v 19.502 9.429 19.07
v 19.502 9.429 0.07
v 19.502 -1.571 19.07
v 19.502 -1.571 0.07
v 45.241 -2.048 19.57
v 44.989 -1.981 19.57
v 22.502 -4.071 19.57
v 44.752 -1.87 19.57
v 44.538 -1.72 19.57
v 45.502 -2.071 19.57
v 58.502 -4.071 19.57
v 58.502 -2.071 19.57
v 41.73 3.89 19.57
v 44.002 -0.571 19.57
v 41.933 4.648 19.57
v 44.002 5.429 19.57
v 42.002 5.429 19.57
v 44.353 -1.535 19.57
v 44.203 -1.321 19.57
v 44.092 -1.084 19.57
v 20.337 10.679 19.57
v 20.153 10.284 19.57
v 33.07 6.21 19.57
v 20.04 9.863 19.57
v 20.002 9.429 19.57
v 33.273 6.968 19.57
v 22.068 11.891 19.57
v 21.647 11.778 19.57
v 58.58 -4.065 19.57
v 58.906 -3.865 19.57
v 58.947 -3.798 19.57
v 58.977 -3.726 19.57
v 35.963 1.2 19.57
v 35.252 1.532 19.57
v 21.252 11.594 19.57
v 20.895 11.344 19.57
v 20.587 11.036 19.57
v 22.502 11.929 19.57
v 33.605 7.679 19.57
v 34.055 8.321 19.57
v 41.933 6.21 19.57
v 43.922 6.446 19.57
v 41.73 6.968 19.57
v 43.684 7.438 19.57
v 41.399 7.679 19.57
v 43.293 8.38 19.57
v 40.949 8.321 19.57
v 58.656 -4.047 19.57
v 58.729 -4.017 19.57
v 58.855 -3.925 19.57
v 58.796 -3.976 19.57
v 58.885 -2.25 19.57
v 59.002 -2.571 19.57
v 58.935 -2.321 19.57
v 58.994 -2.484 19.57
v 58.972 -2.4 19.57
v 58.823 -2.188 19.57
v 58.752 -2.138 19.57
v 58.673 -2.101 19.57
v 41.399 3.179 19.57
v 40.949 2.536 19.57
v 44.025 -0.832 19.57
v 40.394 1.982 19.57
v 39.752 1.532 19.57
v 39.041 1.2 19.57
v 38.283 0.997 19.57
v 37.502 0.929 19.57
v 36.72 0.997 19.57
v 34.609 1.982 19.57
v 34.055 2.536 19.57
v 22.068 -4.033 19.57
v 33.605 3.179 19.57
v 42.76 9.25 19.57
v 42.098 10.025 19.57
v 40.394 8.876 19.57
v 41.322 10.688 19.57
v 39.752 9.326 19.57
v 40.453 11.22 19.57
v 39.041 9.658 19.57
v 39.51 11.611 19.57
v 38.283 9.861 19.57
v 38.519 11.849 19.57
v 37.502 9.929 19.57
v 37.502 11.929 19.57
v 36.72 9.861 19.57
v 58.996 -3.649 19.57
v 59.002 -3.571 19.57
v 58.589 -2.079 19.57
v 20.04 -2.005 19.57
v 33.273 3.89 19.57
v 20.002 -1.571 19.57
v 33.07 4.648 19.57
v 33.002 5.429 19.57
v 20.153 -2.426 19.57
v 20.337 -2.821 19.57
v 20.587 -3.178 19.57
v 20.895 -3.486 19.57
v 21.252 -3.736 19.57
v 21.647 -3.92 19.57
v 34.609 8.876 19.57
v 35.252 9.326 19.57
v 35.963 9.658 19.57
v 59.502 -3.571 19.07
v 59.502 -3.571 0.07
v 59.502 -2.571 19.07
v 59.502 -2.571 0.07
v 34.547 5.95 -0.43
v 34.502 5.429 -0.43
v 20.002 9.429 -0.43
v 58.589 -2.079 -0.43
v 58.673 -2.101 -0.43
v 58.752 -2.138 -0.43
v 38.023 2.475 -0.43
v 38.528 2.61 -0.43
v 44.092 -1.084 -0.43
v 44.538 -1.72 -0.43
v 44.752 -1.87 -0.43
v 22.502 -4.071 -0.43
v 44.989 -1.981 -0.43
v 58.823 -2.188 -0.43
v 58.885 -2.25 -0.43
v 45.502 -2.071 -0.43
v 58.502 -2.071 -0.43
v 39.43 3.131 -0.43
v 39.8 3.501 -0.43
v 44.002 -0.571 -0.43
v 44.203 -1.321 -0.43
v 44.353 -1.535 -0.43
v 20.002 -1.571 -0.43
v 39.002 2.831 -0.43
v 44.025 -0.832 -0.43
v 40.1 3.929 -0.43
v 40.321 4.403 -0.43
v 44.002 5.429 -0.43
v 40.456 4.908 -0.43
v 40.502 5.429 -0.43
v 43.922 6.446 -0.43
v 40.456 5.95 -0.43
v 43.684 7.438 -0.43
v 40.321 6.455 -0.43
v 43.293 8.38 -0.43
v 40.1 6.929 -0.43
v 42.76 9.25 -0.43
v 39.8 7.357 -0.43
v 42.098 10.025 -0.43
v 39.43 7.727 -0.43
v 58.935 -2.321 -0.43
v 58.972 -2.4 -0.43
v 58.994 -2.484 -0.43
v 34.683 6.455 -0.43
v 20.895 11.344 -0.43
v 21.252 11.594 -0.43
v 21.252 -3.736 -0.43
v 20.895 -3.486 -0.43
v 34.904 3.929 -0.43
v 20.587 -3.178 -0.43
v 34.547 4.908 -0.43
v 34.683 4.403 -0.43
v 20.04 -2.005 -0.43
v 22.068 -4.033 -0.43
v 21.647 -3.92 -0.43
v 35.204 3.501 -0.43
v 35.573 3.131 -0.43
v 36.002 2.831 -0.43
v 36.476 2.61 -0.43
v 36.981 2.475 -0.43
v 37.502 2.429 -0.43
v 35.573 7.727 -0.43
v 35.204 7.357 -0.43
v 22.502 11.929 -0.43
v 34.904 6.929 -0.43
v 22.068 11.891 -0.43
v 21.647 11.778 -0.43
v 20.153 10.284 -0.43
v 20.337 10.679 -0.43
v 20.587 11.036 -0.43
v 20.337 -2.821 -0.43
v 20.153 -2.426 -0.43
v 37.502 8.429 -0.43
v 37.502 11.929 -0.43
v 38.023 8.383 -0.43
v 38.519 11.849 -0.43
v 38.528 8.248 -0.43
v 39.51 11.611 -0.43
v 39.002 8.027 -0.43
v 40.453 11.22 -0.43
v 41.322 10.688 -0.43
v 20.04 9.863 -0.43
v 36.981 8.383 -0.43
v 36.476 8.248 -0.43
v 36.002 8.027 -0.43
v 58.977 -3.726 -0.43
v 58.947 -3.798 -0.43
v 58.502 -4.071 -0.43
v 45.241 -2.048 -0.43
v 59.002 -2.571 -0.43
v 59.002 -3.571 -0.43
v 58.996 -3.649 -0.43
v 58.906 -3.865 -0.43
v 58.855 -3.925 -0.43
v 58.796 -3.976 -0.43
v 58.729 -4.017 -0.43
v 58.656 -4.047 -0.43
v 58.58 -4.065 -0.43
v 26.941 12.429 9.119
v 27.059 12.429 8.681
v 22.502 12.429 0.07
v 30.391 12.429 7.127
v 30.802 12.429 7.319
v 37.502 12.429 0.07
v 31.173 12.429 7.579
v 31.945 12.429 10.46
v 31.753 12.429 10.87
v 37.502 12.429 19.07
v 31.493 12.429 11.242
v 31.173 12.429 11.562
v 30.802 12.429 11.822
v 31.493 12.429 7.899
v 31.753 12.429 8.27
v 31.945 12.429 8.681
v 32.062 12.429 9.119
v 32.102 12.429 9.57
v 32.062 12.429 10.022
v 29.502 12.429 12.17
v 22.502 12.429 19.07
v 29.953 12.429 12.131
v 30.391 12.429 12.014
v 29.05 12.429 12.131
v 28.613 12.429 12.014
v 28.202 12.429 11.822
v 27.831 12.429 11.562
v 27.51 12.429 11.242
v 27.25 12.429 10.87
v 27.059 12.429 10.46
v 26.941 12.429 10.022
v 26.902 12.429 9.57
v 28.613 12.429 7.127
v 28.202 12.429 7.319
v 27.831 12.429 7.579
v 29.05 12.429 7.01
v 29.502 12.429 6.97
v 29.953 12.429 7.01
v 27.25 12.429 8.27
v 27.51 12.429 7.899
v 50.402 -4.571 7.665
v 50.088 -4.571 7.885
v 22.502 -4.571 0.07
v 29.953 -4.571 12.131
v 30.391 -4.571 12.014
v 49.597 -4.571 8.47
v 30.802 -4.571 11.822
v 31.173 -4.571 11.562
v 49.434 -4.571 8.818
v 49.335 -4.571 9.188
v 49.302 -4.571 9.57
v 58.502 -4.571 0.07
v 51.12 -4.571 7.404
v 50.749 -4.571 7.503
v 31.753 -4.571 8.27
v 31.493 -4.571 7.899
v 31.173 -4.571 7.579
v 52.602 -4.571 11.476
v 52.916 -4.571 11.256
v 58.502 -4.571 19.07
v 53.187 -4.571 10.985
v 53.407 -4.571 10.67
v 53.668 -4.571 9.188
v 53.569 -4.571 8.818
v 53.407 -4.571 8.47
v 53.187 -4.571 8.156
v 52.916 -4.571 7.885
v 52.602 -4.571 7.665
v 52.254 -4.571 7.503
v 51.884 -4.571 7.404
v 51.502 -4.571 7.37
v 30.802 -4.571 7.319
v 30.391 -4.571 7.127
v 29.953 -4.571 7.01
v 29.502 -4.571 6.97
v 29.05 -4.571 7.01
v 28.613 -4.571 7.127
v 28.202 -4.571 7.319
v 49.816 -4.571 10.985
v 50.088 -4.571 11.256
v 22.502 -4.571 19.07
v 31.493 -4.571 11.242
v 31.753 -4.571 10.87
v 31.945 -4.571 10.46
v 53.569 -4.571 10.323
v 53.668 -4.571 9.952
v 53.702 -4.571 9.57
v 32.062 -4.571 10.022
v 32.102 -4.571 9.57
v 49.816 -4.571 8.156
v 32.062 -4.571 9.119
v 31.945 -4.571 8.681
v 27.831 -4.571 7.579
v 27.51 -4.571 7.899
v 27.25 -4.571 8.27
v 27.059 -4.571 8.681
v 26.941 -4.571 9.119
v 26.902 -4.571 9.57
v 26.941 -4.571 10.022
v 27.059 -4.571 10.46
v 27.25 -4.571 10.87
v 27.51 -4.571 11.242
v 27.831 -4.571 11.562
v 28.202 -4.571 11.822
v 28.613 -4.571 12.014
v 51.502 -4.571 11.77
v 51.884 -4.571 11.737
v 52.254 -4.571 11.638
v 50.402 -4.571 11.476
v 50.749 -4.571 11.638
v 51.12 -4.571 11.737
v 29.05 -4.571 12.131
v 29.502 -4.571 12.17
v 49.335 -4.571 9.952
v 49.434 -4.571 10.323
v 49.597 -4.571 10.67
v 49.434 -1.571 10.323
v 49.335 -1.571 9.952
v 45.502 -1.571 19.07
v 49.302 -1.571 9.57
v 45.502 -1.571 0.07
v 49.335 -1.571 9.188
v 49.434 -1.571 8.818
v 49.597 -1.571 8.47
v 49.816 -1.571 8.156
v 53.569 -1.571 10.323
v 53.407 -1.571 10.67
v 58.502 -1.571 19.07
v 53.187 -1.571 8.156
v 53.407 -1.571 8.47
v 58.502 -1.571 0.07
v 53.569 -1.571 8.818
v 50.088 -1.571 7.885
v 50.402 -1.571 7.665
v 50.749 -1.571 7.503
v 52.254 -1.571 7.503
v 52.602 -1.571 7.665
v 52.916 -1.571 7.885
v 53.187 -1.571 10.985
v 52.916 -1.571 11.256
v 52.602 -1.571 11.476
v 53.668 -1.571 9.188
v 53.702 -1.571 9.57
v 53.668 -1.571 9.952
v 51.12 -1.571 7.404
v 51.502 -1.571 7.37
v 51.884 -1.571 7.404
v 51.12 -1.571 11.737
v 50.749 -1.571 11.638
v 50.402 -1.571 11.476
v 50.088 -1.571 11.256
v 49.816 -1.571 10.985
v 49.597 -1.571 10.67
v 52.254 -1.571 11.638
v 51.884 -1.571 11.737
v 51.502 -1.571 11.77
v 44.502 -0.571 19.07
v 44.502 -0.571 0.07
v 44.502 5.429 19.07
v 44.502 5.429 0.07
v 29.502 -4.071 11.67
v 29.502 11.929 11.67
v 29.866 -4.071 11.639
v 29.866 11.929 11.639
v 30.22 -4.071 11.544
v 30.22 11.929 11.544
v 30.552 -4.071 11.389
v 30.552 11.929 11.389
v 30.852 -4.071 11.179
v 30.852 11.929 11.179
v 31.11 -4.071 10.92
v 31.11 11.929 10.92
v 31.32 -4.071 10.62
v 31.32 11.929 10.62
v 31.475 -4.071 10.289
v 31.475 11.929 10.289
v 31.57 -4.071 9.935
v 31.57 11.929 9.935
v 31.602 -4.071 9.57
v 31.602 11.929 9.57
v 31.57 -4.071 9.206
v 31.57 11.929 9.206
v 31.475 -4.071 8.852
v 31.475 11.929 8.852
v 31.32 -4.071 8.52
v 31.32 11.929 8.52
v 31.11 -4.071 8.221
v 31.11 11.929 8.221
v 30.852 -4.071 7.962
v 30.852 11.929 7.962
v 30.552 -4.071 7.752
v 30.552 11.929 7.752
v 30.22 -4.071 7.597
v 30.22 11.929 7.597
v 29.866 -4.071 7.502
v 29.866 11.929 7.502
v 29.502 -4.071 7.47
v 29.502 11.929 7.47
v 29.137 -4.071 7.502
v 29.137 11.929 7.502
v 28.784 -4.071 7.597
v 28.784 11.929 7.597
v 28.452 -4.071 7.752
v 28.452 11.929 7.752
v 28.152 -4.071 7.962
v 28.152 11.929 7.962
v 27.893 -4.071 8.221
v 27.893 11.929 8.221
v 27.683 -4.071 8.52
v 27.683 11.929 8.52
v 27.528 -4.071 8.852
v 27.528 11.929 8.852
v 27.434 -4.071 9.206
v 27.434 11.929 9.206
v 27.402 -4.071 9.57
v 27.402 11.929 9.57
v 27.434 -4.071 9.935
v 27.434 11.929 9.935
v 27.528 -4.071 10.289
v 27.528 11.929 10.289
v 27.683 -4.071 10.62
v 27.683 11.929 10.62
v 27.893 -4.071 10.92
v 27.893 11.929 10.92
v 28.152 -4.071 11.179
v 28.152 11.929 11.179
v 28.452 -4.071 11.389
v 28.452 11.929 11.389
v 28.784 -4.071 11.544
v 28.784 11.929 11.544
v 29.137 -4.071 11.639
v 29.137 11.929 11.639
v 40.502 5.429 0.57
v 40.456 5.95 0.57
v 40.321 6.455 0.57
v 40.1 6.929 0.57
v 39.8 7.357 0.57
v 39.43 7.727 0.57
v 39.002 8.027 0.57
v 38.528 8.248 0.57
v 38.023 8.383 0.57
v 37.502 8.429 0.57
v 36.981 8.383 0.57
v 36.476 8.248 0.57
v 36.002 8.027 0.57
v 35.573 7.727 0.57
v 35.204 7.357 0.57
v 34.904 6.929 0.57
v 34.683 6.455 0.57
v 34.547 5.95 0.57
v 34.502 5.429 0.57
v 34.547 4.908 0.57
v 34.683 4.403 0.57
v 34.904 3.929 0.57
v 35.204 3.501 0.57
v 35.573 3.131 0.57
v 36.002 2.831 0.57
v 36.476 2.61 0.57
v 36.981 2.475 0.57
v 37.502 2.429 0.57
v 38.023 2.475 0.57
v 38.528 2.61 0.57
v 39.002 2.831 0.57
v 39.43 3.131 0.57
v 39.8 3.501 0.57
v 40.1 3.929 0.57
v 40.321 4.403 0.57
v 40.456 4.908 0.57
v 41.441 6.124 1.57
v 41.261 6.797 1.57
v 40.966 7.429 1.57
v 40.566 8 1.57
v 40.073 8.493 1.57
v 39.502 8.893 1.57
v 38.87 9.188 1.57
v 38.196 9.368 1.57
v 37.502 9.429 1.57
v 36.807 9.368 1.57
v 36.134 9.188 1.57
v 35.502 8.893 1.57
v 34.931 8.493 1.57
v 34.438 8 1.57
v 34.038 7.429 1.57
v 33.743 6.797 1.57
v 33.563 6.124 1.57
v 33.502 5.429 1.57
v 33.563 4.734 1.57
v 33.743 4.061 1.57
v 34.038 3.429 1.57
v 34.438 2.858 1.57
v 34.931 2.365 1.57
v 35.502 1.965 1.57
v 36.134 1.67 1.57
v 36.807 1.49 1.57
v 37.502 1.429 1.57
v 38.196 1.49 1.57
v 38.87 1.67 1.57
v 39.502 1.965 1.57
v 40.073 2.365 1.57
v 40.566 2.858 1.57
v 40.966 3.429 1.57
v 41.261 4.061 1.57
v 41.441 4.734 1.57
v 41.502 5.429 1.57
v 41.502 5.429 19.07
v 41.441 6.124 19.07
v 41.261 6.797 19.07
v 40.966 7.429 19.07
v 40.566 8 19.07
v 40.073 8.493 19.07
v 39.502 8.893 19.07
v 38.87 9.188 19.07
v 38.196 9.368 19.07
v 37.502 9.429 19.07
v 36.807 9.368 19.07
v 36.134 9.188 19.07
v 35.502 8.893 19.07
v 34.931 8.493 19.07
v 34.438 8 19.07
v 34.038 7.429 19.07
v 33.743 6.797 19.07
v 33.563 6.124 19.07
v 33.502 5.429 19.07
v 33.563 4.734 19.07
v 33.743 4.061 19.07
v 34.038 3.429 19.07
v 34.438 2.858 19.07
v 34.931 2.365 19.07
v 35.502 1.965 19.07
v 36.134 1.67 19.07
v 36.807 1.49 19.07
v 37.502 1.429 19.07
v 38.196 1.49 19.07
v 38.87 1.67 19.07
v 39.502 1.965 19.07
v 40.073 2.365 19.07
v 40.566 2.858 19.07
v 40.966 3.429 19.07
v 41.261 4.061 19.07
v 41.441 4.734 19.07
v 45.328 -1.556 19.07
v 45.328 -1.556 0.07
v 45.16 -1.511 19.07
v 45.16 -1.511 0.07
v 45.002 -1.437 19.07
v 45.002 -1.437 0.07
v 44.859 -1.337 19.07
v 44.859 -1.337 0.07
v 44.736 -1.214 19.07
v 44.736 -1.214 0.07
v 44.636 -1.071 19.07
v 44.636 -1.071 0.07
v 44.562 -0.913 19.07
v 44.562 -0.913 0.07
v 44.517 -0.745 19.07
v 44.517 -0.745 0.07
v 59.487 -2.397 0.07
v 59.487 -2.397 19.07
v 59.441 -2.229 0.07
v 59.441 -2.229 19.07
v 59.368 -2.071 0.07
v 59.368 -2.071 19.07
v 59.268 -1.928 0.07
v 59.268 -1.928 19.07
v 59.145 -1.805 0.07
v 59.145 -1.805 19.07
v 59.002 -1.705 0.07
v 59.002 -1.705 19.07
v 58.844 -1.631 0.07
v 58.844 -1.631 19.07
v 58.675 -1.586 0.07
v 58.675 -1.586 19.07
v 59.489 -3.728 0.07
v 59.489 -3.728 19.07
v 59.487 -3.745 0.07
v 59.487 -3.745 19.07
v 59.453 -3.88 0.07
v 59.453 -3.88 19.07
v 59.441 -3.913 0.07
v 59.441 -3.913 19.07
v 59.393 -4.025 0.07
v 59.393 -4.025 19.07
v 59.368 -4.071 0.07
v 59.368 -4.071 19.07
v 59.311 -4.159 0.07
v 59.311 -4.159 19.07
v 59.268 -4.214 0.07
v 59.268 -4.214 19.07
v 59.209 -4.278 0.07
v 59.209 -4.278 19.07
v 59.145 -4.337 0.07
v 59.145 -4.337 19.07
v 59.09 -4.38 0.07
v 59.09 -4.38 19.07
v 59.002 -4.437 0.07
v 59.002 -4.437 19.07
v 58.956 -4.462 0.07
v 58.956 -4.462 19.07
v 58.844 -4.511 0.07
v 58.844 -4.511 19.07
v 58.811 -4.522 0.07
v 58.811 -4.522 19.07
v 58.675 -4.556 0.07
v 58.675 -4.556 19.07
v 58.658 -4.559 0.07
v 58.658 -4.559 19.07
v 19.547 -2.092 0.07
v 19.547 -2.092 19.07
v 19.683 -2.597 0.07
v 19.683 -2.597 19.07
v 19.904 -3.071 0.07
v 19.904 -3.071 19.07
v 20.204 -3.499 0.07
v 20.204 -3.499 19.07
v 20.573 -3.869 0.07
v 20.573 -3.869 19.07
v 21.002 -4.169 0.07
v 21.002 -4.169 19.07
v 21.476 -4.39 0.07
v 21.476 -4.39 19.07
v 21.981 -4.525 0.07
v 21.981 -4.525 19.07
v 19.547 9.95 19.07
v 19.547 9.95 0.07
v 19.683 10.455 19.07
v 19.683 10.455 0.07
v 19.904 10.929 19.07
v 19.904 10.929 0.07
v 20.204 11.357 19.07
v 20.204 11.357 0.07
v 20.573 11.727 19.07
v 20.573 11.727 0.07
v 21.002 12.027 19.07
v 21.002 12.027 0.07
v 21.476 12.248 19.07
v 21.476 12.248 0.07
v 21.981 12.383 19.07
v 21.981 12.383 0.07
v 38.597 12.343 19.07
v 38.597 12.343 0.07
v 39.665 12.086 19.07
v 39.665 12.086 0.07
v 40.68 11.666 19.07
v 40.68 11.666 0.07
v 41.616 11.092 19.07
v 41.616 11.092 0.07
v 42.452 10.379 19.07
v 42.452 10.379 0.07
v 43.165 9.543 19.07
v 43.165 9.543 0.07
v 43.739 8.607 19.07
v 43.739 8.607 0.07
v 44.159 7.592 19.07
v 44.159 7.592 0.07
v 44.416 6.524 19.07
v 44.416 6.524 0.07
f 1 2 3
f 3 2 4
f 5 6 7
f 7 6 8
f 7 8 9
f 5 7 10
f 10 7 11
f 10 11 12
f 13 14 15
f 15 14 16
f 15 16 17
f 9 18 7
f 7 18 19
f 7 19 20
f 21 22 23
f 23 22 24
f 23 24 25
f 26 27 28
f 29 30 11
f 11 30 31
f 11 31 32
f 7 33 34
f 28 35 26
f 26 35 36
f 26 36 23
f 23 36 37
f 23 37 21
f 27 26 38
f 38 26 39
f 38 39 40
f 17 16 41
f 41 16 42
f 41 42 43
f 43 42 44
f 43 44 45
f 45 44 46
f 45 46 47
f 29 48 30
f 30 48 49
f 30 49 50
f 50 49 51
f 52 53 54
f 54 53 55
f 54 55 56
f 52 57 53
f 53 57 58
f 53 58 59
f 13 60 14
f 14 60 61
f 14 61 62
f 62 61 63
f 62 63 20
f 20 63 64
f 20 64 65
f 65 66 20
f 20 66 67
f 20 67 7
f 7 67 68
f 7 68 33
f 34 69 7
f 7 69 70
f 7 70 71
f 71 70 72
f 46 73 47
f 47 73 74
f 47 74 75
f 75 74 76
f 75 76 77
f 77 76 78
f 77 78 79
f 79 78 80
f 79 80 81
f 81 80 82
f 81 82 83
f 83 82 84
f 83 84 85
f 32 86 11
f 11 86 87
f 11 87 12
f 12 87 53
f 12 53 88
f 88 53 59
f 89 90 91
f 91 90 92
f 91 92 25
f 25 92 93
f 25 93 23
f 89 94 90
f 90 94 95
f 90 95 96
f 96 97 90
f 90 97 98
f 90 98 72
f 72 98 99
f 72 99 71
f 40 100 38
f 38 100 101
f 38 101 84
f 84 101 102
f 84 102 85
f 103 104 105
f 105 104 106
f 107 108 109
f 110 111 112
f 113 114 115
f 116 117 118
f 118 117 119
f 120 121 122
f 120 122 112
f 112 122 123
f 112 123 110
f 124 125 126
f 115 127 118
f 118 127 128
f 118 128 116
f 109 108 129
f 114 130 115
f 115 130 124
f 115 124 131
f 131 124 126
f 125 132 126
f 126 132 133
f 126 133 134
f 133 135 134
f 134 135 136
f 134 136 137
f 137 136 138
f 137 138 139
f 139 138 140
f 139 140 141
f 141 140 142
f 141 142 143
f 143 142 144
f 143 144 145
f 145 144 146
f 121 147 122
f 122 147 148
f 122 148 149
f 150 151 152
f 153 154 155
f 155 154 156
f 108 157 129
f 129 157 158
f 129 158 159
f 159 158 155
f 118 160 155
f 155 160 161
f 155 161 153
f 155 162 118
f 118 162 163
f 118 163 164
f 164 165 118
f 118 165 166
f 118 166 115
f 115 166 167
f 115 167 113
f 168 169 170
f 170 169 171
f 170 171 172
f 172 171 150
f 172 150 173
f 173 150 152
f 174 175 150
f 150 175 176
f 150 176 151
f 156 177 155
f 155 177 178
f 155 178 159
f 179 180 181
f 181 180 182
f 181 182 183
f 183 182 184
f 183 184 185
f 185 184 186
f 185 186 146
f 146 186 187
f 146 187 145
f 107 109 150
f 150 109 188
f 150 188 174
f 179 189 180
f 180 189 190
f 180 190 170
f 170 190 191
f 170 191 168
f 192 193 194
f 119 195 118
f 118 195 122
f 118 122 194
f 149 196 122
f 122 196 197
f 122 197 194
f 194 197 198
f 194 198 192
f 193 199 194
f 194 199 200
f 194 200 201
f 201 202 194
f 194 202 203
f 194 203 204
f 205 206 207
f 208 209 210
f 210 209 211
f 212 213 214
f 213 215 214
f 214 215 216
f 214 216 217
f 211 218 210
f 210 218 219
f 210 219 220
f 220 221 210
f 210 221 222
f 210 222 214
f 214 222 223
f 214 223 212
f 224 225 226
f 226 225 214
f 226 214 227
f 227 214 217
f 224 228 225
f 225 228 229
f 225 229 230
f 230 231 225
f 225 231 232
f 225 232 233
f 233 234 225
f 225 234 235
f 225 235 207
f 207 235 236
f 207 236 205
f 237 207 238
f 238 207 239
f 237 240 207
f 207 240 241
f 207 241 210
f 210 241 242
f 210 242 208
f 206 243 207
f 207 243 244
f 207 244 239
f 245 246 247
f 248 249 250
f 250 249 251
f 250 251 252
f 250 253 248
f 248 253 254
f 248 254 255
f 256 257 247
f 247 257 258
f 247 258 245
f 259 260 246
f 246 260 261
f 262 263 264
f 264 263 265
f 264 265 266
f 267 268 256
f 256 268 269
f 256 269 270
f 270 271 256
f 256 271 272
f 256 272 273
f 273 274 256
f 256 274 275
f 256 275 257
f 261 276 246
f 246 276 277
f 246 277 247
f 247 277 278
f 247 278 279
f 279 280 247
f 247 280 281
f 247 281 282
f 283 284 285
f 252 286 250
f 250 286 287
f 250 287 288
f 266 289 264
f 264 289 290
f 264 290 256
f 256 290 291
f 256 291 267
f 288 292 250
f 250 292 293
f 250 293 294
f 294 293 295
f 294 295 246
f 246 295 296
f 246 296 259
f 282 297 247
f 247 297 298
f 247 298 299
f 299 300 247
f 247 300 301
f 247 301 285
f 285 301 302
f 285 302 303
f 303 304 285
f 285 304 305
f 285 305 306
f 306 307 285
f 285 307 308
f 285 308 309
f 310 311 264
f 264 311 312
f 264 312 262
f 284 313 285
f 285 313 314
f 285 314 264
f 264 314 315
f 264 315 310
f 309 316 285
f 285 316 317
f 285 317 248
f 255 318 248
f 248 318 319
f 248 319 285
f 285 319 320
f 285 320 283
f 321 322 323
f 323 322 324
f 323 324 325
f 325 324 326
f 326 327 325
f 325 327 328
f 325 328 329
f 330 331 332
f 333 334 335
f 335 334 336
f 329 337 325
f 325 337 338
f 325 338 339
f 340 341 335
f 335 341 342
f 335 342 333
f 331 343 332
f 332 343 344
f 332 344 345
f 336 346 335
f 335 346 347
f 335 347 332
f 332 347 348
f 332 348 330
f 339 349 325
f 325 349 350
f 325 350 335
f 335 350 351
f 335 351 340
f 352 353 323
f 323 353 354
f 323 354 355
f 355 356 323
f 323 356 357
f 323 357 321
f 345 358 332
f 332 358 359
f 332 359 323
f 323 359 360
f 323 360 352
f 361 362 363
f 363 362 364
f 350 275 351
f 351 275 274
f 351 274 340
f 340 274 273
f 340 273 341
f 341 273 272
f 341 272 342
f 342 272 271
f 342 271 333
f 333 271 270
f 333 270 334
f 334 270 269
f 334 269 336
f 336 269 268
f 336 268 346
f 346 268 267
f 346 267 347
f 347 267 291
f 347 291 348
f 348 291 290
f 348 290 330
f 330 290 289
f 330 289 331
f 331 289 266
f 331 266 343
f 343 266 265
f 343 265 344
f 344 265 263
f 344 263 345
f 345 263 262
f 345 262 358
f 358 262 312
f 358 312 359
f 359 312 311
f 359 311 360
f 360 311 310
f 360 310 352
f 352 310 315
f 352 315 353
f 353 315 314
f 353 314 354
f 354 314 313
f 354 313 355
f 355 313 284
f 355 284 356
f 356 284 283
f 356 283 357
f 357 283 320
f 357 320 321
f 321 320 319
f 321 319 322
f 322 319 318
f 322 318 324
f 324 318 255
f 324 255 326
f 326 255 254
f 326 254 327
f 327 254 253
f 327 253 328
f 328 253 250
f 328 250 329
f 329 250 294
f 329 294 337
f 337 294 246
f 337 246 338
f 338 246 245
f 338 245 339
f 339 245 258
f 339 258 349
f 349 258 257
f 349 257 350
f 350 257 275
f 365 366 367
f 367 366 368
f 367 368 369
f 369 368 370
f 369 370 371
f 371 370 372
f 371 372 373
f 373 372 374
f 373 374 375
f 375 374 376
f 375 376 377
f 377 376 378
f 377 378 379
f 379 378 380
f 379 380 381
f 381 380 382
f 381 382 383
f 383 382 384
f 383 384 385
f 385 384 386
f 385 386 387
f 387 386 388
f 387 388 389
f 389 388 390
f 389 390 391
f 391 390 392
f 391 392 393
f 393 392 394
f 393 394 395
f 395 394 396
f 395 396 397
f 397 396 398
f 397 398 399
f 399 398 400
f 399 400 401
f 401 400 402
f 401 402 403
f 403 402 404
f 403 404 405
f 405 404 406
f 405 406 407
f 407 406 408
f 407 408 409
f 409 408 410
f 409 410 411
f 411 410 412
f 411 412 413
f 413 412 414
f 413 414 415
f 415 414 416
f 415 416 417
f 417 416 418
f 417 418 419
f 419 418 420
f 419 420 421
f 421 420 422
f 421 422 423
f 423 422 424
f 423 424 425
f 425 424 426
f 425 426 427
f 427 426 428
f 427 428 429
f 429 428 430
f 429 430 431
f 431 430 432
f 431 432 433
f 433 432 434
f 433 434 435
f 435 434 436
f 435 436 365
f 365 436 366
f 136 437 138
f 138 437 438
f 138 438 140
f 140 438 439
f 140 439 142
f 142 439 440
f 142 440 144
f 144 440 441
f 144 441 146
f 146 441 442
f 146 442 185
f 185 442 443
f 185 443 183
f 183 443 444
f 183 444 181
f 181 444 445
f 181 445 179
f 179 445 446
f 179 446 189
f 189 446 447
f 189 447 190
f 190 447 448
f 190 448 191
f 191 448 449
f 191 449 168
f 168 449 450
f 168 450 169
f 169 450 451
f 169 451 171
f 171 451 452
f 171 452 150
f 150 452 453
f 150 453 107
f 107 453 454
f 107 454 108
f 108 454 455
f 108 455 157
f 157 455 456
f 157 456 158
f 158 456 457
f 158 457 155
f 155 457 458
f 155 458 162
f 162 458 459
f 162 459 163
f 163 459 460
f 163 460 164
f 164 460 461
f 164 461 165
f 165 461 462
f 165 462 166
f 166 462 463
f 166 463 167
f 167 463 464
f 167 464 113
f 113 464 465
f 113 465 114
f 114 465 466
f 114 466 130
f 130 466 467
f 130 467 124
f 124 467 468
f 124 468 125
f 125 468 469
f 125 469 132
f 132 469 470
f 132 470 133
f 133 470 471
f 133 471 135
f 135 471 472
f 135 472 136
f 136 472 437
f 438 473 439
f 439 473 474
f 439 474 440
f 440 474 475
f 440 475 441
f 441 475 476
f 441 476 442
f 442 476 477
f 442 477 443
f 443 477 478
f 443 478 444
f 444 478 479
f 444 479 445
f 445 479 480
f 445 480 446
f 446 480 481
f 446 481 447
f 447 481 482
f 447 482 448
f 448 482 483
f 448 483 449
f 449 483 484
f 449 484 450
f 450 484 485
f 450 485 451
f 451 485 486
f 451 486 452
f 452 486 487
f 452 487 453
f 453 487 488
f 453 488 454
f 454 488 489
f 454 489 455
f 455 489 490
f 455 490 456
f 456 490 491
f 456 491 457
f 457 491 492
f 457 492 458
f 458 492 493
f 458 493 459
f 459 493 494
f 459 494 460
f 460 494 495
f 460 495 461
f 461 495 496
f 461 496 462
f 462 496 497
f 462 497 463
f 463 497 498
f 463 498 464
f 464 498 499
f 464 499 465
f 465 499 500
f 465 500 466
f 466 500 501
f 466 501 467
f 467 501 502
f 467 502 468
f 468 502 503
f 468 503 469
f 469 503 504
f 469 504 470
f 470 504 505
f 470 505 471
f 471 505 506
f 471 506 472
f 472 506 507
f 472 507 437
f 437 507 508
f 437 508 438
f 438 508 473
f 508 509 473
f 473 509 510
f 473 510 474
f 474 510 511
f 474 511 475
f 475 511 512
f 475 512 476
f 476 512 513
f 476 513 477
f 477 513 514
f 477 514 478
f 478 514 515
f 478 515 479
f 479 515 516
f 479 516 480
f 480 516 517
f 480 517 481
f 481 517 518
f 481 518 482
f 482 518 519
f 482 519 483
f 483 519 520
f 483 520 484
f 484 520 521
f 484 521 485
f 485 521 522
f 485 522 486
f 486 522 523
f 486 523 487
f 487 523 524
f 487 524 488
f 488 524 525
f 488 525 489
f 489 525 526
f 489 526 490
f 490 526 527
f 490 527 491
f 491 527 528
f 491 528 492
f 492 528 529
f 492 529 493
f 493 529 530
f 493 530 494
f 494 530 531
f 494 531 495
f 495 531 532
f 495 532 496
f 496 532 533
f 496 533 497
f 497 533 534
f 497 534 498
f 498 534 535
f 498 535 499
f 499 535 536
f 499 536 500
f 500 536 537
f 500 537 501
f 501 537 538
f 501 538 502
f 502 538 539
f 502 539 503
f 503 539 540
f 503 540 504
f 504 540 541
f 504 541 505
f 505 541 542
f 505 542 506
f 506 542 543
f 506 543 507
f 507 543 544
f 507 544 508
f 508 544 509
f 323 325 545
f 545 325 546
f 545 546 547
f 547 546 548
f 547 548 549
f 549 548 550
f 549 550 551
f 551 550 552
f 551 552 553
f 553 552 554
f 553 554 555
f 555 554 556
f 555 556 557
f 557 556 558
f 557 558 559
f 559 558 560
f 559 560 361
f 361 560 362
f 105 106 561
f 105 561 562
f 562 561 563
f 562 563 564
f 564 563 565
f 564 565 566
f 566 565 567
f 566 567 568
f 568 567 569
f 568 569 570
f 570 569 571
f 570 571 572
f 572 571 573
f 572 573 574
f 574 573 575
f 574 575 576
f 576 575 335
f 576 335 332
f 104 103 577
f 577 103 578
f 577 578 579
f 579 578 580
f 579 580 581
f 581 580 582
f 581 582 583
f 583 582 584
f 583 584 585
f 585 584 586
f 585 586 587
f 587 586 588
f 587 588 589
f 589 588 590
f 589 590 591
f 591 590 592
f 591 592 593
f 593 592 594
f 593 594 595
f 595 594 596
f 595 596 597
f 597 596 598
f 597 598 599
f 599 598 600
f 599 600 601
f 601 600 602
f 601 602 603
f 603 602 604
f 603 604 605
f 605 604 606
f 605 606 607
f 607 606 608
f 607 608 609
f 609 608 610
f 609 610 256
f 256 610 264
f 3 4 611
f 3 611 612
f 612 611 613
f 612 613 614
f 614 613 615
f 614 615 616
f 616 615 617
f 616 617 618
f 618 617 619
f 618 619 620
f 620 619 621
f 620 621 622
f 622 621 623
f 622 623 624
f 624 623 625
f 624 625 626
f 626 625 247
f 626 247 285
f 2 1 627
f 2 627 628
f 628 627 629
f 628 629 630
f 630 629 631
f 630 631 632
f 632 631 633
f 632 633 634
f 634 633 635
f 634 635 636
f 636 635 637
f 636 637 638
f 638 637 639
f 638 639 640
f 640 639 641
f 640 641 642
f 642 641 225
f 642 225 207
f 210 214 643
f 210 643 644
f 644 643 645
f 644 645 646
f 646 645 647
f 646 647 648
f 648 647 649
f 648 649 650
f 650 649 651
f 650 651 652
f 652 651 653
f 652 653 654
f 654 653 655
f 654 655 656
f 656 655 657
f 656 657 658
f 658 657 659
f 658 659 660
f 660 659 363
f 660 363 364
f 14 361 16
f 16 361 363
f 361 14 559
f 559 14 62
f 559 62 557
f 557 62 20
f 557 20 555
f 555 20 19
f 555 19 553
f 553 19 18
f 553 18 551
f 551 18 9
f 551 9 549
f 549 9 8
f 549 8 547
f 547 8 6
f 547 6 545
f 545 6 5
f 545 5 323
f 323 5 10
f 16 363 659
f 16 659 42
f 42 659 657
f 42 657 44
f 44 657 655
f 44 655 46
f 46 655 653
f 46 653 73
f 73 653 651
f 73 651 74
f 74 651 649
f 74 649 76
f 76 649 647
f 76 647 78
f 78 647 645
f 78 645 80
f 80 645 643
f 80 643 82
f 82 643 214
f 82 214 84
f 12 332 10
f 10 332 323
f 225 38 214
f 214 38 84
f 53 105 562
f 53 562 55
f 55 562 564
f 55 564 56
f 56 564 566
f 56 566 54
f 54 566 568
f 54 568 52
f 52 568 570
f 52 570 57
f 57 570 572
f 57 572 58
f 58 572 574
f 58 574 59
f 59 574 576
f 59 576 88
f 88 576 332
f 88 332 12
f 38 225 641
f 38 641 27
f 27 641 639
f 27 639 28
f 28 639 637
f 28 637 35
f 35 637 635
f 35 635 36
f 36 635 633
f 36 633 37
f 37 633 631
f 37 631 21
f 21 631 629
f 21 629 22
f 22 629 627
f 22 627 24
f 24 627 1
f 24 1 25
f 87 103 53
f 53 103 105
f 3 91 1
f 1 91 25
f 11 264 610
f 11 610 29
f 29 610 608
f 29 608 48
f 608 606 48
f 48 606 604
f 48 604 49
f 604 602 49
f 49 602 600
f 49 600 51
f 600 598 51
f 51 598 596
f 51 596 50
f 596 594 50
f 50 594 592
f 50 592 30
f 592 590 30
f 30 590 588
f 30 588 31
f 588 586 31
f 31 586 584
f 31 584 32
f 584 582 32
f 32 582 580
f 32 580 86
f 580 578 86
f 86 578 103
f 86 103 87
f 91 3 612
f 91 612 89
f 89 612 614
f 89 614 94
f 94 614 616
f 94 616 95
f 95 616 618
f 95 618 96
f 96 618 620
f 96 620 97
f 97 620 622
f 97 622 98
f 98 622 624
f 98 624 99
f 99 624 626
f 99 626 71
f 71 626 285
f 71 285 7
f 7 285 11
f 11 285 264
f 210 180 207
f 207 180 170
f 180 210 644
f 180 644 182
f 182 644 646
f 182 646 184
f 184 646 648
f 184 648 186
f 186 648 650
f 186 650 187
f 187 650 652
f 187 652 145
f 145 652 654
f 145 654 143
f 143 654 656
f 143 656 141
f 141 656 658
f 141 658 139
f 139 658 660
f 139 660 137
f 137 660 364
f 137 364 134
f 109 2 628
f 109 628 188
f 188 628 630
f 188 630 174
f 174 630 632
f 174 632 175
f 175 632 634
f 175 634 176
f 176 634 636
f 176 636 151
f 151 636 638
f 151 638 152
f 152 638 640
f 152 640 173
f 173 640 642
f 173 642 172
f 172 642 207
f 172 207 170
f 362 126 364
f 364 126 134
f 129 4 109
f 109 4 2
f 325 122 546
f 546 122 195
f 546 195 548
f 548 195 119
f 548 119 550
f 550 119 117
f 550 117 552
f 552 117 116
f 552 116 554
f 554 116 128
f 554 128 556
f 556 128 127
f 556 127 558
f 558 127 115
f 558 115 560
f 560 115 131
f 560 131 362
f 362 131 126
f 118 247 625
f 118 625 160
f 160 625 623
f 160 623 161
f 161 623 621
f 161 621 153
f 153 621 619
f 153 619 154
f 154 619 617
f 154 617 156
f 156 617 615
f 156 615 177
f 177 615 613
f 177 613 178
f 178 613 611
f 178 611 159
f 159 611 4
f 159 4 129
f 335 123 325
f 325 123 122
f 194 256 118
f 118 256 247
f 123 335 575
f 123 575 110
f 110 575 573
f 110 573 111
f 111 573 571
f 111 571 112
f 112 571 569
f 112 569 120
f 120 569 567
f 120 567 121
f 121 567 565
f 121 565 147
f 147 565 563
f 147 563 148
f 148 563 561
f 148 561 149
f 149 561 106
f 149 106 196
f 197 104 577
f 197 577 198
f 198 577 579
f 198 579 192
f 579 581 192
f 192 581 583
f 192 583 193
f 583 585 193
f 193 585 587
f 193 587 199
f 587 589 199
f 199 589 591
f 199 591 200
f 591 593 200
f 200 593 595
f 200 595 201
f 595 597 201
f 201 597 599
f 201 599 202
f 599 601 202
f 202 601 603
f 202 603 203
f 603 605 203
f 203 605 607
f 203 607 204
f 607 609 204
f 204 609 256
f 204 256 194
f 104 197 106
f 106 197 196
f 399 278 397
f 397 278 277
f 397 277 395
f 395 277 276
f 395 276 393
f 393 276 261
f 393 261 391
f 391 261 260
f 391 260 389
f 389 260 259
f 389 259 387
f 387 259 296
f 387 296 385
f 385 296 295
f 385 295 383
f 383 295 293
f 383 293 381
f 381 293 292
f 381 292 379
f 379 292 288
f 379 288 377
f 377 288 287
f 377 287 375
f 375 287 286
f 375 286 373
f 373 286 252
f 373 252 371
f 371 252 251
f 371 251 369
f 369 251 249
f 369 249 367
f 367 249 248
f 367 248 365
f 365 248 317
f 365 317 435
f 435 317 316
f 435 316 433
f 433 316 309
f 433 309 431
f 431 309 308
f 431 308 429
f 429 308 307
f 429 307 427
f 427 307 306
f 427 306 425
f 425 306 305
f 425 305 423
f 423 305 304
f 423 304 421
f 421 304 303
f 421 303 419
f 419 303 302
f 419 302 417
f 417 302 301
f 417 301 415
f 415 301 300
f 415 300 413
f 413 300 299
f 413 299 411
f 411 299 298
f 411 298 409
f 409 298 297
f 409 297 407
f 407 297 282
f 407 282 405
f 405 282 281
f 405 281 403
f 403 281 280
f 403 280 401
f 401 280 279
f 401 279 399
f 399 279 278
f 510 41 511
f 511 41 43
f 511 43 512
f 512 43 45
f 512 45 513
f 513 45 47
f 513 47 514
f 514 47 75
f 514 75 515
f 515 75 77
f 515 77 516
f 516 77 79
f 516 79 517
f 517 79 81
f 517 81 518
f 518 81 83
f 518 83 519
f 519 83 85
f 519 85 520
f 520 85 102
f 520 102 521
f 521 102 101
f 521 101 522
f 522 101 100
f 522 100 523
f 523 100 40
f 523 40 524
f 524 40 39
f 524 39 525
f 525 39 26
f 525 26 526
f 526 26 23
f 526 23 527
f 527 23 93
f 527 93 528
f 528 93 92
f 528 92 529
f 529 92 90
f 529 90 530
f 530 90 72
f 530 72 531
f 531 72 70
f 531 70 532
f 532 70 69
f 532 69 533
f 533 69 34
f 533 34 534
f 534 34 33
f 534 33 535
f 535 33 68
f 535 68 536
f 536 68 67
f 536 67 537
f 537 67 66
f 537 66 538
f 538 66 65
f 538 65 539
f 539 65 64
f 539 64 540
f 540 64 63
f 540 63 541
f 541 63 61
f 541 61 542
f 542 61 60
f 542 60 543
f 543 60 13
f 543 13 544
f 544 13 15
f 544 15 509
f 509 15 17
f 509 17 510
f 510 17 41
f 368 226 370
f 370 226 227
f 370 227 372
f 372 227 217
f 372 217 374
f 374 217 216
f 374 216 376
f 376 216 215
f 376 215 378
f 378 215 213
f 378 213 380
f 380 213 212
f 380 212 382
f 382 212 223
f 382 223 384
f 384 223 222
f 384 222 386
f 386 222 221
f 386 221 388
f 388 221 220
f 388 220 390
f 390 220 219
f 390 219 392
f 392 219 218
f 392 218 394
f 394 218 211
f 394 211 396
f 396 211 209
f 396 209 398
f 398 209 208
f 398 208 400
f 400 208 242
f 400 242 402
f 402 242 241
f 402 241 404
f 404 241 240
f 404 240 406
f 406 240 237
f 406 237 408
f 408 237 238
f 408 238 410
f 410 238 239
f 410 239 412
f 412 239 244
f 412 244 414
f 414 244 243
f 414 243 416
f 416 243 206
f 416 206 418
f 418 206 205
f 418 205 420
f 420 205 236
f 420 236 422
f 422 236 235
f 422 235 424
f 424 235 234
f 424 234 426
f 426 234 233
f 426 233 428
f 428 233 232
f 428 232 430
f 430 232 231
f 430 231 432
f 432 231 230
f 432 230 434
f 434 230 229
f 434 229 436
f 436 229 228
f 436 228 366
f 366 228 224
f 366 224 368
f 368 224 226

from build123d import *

# Parameters (mm, degrees)
SKETCH1_W                      = 40
SKETCH1_H                      = 20
BOSS_EXTRUDE1_DEPTH            = 17
SKETCH2_W                      = 15
SKETCH2_H                      = 14
CUT_EXTRUDE1_DEPTH             = 21
F_4_4_4_4_DIAMETER_HOLE1_D     = 4.4
F_4_4_4_4_DIAMETER_HOLE1_DEPTH = 17
F_4_2_4_2_DIAMETER_HOLE1_D     = 4.2
F_4_2_4_2_DIAMETER_HOLE1_DEPTH = 17
FILLET1_R                      = 1
FILLET2_R                      = 3
FILLET3_R                      = 7
CHAMFER1_SIZE                  = 0.5


with BuildPart() as part:
    # Sketch1 → Boss-Extrude1 (new body)
    with BuildSketch(Plane.XZ.offset(4.571066784)):
        with Locations((39.501752658, 9.570440181)):
            Rectangle(SKETCH1_W, SKETCH1_H)
    extrude(amount=-BOSS_EXTRUDE1_DEPTH)

    # Sketch2 → Cut-Extrude1 (cut, through all)
    with BuildSketch(Plane.XY.offset(19.570440181)):
        with Locations((52.001752658, 5.428933216)):
            Rectangle(SKETCH2_W, SKETCH2_H)
    extrude(amount=-CUT_EXTRUDE1_DEPTH, mode=Mode.SUBTRACT)

    # Ø4.4 (4.4) Diameter Hole1
    with Locations(Plane(origin=(0, -4.571066784, 0), x_dir=(-1, 0, 0), z_dir=(0, -1, 0))):
        with Locations((-51.501752658, -9.570440181)):
            Hole(F_4_4_4_4_DIAMETER_HOLE1_D / 2, depth=F_4_4_4_4_DIAMETER_HOLE1_DEPTH)

    # Ø4.2 (4.2) Diameter Hole1
    with Locations(Plane(origin=(0, 12.428933216, 0), x_dir=(1, 0, 0), z_dir=(0, 1, 0))):
        with Locations((29.501752658, -9.570440181)):
            Hole(F_4_2_4_2_DIAMETER_HOLE1_D / 2, depth=F_4_2_4_2_DIAMETER_HOLE1_DEPTH)

    # Sketch7 → Hole1 (revolve, cut)
    with BuildSketch(Plane(origin=(37.501752658, 5.428933216, 19.570440181), x_dir=(0, -1, 0), z_dir=(1, 0, 0))):
        Polygon((0, 0), (0, 20), (3, 20), (3, 19), (4, 18), (4, 0), align=None)
    revolve(axis=Axis((37.501752658, 5.428933216, 25.70046408), (0, 0, -1)), mode=Mode.SUBTRACT)

    # Fillet1
    fillet1_edges = [part.edges().sort_by_distance(p)[0] for p in [
        (59.501752658, -1.571066784, 9.570440181),
        (44.501752658, -1.571066784, 9.570440181),
        (59.501752658, -4.571066784, 9.570440181),
    ]]
    fillet(fillet1_edges, radius=FILLET1_R)

    # Fillet2
    fillet2_edges = [part.edges().sort_by_distance(p)[0] for p in [
        (19.501752658, 12.428933216, 9.570440181),
        (19.501752658, -4.571066784, 9.570440181),
    ]]
    fillet(fillet2_edges, radius=FILLET2_R)

    # Fillet3
    fillet3_edges = [part.edges().sort_by_distance(p)[0] for p in [
        (44.501752658, 12.428933216, 9.570440181),
    ]]
    fillet(fillet3_edges, radius=FILLET3_R)

    # Chamfer1
    chamfer1_edges = [part.edges().sort_by_distance(p)[0] for p in [
        (31.601752658, 12.428933216, 9.570440181),
        (31.601752658, -4.571066784, 9.570440181),
        (37.501752658, 9.428933216, 19.570440181),
        (52.001752658, -1.571066784, 19.570440181),
        (52.001752658, -1.571066784, -0.429559819),
        (59.501752658, -3.071066784, 19.570440181),
        (59.501752658, -3.071066784, -0.429559819),
        (40.501752658, -4.571066784, 19.570440181),
        (59.208859439, -4.278173565, 19.570440181),
        (59.208859439, -1.863960002, 19.570440181),
        (59.208859439, -4.278173565, -0.429559819),
        (59.208859439, -1.863960002, -0.429559819),
        (44.794645876, -1.278173565, 19.570440181),
        (44.794645876, -1.278173565, -0.429559819),
        (40.501752658, -4.571066784, -0.429559819),
        (19.501752658, 3.928933216, -0.429559819),
        (30.001752658, 12.428933216, -0.429559819),
        (20.380432314, 11.55025356, -0.429559819),
        (20.380432314, -3.692387127, -0.429559819),
        (19.501752658, 3.928933216, 19.570440181),
        (20.380432314, 11.55025356, 19.570440181),
        (20.380432314, -3.692387127, 19.570440181),
        (44.501752658, 2.428933216, 19.570440181),
        (44.501752658, 2.428933216, -0.429559819),
        (30.001752658, 12.428933216, 19.570440181),
        (42.451500126, 10.378680685, 19.570440181),
        (42.451500126, 10.378680685, -0.429559819),
    ]]
    chamfer(chamfer1_edges, length=CHAMFER1_SIZE)


solid = part.part
